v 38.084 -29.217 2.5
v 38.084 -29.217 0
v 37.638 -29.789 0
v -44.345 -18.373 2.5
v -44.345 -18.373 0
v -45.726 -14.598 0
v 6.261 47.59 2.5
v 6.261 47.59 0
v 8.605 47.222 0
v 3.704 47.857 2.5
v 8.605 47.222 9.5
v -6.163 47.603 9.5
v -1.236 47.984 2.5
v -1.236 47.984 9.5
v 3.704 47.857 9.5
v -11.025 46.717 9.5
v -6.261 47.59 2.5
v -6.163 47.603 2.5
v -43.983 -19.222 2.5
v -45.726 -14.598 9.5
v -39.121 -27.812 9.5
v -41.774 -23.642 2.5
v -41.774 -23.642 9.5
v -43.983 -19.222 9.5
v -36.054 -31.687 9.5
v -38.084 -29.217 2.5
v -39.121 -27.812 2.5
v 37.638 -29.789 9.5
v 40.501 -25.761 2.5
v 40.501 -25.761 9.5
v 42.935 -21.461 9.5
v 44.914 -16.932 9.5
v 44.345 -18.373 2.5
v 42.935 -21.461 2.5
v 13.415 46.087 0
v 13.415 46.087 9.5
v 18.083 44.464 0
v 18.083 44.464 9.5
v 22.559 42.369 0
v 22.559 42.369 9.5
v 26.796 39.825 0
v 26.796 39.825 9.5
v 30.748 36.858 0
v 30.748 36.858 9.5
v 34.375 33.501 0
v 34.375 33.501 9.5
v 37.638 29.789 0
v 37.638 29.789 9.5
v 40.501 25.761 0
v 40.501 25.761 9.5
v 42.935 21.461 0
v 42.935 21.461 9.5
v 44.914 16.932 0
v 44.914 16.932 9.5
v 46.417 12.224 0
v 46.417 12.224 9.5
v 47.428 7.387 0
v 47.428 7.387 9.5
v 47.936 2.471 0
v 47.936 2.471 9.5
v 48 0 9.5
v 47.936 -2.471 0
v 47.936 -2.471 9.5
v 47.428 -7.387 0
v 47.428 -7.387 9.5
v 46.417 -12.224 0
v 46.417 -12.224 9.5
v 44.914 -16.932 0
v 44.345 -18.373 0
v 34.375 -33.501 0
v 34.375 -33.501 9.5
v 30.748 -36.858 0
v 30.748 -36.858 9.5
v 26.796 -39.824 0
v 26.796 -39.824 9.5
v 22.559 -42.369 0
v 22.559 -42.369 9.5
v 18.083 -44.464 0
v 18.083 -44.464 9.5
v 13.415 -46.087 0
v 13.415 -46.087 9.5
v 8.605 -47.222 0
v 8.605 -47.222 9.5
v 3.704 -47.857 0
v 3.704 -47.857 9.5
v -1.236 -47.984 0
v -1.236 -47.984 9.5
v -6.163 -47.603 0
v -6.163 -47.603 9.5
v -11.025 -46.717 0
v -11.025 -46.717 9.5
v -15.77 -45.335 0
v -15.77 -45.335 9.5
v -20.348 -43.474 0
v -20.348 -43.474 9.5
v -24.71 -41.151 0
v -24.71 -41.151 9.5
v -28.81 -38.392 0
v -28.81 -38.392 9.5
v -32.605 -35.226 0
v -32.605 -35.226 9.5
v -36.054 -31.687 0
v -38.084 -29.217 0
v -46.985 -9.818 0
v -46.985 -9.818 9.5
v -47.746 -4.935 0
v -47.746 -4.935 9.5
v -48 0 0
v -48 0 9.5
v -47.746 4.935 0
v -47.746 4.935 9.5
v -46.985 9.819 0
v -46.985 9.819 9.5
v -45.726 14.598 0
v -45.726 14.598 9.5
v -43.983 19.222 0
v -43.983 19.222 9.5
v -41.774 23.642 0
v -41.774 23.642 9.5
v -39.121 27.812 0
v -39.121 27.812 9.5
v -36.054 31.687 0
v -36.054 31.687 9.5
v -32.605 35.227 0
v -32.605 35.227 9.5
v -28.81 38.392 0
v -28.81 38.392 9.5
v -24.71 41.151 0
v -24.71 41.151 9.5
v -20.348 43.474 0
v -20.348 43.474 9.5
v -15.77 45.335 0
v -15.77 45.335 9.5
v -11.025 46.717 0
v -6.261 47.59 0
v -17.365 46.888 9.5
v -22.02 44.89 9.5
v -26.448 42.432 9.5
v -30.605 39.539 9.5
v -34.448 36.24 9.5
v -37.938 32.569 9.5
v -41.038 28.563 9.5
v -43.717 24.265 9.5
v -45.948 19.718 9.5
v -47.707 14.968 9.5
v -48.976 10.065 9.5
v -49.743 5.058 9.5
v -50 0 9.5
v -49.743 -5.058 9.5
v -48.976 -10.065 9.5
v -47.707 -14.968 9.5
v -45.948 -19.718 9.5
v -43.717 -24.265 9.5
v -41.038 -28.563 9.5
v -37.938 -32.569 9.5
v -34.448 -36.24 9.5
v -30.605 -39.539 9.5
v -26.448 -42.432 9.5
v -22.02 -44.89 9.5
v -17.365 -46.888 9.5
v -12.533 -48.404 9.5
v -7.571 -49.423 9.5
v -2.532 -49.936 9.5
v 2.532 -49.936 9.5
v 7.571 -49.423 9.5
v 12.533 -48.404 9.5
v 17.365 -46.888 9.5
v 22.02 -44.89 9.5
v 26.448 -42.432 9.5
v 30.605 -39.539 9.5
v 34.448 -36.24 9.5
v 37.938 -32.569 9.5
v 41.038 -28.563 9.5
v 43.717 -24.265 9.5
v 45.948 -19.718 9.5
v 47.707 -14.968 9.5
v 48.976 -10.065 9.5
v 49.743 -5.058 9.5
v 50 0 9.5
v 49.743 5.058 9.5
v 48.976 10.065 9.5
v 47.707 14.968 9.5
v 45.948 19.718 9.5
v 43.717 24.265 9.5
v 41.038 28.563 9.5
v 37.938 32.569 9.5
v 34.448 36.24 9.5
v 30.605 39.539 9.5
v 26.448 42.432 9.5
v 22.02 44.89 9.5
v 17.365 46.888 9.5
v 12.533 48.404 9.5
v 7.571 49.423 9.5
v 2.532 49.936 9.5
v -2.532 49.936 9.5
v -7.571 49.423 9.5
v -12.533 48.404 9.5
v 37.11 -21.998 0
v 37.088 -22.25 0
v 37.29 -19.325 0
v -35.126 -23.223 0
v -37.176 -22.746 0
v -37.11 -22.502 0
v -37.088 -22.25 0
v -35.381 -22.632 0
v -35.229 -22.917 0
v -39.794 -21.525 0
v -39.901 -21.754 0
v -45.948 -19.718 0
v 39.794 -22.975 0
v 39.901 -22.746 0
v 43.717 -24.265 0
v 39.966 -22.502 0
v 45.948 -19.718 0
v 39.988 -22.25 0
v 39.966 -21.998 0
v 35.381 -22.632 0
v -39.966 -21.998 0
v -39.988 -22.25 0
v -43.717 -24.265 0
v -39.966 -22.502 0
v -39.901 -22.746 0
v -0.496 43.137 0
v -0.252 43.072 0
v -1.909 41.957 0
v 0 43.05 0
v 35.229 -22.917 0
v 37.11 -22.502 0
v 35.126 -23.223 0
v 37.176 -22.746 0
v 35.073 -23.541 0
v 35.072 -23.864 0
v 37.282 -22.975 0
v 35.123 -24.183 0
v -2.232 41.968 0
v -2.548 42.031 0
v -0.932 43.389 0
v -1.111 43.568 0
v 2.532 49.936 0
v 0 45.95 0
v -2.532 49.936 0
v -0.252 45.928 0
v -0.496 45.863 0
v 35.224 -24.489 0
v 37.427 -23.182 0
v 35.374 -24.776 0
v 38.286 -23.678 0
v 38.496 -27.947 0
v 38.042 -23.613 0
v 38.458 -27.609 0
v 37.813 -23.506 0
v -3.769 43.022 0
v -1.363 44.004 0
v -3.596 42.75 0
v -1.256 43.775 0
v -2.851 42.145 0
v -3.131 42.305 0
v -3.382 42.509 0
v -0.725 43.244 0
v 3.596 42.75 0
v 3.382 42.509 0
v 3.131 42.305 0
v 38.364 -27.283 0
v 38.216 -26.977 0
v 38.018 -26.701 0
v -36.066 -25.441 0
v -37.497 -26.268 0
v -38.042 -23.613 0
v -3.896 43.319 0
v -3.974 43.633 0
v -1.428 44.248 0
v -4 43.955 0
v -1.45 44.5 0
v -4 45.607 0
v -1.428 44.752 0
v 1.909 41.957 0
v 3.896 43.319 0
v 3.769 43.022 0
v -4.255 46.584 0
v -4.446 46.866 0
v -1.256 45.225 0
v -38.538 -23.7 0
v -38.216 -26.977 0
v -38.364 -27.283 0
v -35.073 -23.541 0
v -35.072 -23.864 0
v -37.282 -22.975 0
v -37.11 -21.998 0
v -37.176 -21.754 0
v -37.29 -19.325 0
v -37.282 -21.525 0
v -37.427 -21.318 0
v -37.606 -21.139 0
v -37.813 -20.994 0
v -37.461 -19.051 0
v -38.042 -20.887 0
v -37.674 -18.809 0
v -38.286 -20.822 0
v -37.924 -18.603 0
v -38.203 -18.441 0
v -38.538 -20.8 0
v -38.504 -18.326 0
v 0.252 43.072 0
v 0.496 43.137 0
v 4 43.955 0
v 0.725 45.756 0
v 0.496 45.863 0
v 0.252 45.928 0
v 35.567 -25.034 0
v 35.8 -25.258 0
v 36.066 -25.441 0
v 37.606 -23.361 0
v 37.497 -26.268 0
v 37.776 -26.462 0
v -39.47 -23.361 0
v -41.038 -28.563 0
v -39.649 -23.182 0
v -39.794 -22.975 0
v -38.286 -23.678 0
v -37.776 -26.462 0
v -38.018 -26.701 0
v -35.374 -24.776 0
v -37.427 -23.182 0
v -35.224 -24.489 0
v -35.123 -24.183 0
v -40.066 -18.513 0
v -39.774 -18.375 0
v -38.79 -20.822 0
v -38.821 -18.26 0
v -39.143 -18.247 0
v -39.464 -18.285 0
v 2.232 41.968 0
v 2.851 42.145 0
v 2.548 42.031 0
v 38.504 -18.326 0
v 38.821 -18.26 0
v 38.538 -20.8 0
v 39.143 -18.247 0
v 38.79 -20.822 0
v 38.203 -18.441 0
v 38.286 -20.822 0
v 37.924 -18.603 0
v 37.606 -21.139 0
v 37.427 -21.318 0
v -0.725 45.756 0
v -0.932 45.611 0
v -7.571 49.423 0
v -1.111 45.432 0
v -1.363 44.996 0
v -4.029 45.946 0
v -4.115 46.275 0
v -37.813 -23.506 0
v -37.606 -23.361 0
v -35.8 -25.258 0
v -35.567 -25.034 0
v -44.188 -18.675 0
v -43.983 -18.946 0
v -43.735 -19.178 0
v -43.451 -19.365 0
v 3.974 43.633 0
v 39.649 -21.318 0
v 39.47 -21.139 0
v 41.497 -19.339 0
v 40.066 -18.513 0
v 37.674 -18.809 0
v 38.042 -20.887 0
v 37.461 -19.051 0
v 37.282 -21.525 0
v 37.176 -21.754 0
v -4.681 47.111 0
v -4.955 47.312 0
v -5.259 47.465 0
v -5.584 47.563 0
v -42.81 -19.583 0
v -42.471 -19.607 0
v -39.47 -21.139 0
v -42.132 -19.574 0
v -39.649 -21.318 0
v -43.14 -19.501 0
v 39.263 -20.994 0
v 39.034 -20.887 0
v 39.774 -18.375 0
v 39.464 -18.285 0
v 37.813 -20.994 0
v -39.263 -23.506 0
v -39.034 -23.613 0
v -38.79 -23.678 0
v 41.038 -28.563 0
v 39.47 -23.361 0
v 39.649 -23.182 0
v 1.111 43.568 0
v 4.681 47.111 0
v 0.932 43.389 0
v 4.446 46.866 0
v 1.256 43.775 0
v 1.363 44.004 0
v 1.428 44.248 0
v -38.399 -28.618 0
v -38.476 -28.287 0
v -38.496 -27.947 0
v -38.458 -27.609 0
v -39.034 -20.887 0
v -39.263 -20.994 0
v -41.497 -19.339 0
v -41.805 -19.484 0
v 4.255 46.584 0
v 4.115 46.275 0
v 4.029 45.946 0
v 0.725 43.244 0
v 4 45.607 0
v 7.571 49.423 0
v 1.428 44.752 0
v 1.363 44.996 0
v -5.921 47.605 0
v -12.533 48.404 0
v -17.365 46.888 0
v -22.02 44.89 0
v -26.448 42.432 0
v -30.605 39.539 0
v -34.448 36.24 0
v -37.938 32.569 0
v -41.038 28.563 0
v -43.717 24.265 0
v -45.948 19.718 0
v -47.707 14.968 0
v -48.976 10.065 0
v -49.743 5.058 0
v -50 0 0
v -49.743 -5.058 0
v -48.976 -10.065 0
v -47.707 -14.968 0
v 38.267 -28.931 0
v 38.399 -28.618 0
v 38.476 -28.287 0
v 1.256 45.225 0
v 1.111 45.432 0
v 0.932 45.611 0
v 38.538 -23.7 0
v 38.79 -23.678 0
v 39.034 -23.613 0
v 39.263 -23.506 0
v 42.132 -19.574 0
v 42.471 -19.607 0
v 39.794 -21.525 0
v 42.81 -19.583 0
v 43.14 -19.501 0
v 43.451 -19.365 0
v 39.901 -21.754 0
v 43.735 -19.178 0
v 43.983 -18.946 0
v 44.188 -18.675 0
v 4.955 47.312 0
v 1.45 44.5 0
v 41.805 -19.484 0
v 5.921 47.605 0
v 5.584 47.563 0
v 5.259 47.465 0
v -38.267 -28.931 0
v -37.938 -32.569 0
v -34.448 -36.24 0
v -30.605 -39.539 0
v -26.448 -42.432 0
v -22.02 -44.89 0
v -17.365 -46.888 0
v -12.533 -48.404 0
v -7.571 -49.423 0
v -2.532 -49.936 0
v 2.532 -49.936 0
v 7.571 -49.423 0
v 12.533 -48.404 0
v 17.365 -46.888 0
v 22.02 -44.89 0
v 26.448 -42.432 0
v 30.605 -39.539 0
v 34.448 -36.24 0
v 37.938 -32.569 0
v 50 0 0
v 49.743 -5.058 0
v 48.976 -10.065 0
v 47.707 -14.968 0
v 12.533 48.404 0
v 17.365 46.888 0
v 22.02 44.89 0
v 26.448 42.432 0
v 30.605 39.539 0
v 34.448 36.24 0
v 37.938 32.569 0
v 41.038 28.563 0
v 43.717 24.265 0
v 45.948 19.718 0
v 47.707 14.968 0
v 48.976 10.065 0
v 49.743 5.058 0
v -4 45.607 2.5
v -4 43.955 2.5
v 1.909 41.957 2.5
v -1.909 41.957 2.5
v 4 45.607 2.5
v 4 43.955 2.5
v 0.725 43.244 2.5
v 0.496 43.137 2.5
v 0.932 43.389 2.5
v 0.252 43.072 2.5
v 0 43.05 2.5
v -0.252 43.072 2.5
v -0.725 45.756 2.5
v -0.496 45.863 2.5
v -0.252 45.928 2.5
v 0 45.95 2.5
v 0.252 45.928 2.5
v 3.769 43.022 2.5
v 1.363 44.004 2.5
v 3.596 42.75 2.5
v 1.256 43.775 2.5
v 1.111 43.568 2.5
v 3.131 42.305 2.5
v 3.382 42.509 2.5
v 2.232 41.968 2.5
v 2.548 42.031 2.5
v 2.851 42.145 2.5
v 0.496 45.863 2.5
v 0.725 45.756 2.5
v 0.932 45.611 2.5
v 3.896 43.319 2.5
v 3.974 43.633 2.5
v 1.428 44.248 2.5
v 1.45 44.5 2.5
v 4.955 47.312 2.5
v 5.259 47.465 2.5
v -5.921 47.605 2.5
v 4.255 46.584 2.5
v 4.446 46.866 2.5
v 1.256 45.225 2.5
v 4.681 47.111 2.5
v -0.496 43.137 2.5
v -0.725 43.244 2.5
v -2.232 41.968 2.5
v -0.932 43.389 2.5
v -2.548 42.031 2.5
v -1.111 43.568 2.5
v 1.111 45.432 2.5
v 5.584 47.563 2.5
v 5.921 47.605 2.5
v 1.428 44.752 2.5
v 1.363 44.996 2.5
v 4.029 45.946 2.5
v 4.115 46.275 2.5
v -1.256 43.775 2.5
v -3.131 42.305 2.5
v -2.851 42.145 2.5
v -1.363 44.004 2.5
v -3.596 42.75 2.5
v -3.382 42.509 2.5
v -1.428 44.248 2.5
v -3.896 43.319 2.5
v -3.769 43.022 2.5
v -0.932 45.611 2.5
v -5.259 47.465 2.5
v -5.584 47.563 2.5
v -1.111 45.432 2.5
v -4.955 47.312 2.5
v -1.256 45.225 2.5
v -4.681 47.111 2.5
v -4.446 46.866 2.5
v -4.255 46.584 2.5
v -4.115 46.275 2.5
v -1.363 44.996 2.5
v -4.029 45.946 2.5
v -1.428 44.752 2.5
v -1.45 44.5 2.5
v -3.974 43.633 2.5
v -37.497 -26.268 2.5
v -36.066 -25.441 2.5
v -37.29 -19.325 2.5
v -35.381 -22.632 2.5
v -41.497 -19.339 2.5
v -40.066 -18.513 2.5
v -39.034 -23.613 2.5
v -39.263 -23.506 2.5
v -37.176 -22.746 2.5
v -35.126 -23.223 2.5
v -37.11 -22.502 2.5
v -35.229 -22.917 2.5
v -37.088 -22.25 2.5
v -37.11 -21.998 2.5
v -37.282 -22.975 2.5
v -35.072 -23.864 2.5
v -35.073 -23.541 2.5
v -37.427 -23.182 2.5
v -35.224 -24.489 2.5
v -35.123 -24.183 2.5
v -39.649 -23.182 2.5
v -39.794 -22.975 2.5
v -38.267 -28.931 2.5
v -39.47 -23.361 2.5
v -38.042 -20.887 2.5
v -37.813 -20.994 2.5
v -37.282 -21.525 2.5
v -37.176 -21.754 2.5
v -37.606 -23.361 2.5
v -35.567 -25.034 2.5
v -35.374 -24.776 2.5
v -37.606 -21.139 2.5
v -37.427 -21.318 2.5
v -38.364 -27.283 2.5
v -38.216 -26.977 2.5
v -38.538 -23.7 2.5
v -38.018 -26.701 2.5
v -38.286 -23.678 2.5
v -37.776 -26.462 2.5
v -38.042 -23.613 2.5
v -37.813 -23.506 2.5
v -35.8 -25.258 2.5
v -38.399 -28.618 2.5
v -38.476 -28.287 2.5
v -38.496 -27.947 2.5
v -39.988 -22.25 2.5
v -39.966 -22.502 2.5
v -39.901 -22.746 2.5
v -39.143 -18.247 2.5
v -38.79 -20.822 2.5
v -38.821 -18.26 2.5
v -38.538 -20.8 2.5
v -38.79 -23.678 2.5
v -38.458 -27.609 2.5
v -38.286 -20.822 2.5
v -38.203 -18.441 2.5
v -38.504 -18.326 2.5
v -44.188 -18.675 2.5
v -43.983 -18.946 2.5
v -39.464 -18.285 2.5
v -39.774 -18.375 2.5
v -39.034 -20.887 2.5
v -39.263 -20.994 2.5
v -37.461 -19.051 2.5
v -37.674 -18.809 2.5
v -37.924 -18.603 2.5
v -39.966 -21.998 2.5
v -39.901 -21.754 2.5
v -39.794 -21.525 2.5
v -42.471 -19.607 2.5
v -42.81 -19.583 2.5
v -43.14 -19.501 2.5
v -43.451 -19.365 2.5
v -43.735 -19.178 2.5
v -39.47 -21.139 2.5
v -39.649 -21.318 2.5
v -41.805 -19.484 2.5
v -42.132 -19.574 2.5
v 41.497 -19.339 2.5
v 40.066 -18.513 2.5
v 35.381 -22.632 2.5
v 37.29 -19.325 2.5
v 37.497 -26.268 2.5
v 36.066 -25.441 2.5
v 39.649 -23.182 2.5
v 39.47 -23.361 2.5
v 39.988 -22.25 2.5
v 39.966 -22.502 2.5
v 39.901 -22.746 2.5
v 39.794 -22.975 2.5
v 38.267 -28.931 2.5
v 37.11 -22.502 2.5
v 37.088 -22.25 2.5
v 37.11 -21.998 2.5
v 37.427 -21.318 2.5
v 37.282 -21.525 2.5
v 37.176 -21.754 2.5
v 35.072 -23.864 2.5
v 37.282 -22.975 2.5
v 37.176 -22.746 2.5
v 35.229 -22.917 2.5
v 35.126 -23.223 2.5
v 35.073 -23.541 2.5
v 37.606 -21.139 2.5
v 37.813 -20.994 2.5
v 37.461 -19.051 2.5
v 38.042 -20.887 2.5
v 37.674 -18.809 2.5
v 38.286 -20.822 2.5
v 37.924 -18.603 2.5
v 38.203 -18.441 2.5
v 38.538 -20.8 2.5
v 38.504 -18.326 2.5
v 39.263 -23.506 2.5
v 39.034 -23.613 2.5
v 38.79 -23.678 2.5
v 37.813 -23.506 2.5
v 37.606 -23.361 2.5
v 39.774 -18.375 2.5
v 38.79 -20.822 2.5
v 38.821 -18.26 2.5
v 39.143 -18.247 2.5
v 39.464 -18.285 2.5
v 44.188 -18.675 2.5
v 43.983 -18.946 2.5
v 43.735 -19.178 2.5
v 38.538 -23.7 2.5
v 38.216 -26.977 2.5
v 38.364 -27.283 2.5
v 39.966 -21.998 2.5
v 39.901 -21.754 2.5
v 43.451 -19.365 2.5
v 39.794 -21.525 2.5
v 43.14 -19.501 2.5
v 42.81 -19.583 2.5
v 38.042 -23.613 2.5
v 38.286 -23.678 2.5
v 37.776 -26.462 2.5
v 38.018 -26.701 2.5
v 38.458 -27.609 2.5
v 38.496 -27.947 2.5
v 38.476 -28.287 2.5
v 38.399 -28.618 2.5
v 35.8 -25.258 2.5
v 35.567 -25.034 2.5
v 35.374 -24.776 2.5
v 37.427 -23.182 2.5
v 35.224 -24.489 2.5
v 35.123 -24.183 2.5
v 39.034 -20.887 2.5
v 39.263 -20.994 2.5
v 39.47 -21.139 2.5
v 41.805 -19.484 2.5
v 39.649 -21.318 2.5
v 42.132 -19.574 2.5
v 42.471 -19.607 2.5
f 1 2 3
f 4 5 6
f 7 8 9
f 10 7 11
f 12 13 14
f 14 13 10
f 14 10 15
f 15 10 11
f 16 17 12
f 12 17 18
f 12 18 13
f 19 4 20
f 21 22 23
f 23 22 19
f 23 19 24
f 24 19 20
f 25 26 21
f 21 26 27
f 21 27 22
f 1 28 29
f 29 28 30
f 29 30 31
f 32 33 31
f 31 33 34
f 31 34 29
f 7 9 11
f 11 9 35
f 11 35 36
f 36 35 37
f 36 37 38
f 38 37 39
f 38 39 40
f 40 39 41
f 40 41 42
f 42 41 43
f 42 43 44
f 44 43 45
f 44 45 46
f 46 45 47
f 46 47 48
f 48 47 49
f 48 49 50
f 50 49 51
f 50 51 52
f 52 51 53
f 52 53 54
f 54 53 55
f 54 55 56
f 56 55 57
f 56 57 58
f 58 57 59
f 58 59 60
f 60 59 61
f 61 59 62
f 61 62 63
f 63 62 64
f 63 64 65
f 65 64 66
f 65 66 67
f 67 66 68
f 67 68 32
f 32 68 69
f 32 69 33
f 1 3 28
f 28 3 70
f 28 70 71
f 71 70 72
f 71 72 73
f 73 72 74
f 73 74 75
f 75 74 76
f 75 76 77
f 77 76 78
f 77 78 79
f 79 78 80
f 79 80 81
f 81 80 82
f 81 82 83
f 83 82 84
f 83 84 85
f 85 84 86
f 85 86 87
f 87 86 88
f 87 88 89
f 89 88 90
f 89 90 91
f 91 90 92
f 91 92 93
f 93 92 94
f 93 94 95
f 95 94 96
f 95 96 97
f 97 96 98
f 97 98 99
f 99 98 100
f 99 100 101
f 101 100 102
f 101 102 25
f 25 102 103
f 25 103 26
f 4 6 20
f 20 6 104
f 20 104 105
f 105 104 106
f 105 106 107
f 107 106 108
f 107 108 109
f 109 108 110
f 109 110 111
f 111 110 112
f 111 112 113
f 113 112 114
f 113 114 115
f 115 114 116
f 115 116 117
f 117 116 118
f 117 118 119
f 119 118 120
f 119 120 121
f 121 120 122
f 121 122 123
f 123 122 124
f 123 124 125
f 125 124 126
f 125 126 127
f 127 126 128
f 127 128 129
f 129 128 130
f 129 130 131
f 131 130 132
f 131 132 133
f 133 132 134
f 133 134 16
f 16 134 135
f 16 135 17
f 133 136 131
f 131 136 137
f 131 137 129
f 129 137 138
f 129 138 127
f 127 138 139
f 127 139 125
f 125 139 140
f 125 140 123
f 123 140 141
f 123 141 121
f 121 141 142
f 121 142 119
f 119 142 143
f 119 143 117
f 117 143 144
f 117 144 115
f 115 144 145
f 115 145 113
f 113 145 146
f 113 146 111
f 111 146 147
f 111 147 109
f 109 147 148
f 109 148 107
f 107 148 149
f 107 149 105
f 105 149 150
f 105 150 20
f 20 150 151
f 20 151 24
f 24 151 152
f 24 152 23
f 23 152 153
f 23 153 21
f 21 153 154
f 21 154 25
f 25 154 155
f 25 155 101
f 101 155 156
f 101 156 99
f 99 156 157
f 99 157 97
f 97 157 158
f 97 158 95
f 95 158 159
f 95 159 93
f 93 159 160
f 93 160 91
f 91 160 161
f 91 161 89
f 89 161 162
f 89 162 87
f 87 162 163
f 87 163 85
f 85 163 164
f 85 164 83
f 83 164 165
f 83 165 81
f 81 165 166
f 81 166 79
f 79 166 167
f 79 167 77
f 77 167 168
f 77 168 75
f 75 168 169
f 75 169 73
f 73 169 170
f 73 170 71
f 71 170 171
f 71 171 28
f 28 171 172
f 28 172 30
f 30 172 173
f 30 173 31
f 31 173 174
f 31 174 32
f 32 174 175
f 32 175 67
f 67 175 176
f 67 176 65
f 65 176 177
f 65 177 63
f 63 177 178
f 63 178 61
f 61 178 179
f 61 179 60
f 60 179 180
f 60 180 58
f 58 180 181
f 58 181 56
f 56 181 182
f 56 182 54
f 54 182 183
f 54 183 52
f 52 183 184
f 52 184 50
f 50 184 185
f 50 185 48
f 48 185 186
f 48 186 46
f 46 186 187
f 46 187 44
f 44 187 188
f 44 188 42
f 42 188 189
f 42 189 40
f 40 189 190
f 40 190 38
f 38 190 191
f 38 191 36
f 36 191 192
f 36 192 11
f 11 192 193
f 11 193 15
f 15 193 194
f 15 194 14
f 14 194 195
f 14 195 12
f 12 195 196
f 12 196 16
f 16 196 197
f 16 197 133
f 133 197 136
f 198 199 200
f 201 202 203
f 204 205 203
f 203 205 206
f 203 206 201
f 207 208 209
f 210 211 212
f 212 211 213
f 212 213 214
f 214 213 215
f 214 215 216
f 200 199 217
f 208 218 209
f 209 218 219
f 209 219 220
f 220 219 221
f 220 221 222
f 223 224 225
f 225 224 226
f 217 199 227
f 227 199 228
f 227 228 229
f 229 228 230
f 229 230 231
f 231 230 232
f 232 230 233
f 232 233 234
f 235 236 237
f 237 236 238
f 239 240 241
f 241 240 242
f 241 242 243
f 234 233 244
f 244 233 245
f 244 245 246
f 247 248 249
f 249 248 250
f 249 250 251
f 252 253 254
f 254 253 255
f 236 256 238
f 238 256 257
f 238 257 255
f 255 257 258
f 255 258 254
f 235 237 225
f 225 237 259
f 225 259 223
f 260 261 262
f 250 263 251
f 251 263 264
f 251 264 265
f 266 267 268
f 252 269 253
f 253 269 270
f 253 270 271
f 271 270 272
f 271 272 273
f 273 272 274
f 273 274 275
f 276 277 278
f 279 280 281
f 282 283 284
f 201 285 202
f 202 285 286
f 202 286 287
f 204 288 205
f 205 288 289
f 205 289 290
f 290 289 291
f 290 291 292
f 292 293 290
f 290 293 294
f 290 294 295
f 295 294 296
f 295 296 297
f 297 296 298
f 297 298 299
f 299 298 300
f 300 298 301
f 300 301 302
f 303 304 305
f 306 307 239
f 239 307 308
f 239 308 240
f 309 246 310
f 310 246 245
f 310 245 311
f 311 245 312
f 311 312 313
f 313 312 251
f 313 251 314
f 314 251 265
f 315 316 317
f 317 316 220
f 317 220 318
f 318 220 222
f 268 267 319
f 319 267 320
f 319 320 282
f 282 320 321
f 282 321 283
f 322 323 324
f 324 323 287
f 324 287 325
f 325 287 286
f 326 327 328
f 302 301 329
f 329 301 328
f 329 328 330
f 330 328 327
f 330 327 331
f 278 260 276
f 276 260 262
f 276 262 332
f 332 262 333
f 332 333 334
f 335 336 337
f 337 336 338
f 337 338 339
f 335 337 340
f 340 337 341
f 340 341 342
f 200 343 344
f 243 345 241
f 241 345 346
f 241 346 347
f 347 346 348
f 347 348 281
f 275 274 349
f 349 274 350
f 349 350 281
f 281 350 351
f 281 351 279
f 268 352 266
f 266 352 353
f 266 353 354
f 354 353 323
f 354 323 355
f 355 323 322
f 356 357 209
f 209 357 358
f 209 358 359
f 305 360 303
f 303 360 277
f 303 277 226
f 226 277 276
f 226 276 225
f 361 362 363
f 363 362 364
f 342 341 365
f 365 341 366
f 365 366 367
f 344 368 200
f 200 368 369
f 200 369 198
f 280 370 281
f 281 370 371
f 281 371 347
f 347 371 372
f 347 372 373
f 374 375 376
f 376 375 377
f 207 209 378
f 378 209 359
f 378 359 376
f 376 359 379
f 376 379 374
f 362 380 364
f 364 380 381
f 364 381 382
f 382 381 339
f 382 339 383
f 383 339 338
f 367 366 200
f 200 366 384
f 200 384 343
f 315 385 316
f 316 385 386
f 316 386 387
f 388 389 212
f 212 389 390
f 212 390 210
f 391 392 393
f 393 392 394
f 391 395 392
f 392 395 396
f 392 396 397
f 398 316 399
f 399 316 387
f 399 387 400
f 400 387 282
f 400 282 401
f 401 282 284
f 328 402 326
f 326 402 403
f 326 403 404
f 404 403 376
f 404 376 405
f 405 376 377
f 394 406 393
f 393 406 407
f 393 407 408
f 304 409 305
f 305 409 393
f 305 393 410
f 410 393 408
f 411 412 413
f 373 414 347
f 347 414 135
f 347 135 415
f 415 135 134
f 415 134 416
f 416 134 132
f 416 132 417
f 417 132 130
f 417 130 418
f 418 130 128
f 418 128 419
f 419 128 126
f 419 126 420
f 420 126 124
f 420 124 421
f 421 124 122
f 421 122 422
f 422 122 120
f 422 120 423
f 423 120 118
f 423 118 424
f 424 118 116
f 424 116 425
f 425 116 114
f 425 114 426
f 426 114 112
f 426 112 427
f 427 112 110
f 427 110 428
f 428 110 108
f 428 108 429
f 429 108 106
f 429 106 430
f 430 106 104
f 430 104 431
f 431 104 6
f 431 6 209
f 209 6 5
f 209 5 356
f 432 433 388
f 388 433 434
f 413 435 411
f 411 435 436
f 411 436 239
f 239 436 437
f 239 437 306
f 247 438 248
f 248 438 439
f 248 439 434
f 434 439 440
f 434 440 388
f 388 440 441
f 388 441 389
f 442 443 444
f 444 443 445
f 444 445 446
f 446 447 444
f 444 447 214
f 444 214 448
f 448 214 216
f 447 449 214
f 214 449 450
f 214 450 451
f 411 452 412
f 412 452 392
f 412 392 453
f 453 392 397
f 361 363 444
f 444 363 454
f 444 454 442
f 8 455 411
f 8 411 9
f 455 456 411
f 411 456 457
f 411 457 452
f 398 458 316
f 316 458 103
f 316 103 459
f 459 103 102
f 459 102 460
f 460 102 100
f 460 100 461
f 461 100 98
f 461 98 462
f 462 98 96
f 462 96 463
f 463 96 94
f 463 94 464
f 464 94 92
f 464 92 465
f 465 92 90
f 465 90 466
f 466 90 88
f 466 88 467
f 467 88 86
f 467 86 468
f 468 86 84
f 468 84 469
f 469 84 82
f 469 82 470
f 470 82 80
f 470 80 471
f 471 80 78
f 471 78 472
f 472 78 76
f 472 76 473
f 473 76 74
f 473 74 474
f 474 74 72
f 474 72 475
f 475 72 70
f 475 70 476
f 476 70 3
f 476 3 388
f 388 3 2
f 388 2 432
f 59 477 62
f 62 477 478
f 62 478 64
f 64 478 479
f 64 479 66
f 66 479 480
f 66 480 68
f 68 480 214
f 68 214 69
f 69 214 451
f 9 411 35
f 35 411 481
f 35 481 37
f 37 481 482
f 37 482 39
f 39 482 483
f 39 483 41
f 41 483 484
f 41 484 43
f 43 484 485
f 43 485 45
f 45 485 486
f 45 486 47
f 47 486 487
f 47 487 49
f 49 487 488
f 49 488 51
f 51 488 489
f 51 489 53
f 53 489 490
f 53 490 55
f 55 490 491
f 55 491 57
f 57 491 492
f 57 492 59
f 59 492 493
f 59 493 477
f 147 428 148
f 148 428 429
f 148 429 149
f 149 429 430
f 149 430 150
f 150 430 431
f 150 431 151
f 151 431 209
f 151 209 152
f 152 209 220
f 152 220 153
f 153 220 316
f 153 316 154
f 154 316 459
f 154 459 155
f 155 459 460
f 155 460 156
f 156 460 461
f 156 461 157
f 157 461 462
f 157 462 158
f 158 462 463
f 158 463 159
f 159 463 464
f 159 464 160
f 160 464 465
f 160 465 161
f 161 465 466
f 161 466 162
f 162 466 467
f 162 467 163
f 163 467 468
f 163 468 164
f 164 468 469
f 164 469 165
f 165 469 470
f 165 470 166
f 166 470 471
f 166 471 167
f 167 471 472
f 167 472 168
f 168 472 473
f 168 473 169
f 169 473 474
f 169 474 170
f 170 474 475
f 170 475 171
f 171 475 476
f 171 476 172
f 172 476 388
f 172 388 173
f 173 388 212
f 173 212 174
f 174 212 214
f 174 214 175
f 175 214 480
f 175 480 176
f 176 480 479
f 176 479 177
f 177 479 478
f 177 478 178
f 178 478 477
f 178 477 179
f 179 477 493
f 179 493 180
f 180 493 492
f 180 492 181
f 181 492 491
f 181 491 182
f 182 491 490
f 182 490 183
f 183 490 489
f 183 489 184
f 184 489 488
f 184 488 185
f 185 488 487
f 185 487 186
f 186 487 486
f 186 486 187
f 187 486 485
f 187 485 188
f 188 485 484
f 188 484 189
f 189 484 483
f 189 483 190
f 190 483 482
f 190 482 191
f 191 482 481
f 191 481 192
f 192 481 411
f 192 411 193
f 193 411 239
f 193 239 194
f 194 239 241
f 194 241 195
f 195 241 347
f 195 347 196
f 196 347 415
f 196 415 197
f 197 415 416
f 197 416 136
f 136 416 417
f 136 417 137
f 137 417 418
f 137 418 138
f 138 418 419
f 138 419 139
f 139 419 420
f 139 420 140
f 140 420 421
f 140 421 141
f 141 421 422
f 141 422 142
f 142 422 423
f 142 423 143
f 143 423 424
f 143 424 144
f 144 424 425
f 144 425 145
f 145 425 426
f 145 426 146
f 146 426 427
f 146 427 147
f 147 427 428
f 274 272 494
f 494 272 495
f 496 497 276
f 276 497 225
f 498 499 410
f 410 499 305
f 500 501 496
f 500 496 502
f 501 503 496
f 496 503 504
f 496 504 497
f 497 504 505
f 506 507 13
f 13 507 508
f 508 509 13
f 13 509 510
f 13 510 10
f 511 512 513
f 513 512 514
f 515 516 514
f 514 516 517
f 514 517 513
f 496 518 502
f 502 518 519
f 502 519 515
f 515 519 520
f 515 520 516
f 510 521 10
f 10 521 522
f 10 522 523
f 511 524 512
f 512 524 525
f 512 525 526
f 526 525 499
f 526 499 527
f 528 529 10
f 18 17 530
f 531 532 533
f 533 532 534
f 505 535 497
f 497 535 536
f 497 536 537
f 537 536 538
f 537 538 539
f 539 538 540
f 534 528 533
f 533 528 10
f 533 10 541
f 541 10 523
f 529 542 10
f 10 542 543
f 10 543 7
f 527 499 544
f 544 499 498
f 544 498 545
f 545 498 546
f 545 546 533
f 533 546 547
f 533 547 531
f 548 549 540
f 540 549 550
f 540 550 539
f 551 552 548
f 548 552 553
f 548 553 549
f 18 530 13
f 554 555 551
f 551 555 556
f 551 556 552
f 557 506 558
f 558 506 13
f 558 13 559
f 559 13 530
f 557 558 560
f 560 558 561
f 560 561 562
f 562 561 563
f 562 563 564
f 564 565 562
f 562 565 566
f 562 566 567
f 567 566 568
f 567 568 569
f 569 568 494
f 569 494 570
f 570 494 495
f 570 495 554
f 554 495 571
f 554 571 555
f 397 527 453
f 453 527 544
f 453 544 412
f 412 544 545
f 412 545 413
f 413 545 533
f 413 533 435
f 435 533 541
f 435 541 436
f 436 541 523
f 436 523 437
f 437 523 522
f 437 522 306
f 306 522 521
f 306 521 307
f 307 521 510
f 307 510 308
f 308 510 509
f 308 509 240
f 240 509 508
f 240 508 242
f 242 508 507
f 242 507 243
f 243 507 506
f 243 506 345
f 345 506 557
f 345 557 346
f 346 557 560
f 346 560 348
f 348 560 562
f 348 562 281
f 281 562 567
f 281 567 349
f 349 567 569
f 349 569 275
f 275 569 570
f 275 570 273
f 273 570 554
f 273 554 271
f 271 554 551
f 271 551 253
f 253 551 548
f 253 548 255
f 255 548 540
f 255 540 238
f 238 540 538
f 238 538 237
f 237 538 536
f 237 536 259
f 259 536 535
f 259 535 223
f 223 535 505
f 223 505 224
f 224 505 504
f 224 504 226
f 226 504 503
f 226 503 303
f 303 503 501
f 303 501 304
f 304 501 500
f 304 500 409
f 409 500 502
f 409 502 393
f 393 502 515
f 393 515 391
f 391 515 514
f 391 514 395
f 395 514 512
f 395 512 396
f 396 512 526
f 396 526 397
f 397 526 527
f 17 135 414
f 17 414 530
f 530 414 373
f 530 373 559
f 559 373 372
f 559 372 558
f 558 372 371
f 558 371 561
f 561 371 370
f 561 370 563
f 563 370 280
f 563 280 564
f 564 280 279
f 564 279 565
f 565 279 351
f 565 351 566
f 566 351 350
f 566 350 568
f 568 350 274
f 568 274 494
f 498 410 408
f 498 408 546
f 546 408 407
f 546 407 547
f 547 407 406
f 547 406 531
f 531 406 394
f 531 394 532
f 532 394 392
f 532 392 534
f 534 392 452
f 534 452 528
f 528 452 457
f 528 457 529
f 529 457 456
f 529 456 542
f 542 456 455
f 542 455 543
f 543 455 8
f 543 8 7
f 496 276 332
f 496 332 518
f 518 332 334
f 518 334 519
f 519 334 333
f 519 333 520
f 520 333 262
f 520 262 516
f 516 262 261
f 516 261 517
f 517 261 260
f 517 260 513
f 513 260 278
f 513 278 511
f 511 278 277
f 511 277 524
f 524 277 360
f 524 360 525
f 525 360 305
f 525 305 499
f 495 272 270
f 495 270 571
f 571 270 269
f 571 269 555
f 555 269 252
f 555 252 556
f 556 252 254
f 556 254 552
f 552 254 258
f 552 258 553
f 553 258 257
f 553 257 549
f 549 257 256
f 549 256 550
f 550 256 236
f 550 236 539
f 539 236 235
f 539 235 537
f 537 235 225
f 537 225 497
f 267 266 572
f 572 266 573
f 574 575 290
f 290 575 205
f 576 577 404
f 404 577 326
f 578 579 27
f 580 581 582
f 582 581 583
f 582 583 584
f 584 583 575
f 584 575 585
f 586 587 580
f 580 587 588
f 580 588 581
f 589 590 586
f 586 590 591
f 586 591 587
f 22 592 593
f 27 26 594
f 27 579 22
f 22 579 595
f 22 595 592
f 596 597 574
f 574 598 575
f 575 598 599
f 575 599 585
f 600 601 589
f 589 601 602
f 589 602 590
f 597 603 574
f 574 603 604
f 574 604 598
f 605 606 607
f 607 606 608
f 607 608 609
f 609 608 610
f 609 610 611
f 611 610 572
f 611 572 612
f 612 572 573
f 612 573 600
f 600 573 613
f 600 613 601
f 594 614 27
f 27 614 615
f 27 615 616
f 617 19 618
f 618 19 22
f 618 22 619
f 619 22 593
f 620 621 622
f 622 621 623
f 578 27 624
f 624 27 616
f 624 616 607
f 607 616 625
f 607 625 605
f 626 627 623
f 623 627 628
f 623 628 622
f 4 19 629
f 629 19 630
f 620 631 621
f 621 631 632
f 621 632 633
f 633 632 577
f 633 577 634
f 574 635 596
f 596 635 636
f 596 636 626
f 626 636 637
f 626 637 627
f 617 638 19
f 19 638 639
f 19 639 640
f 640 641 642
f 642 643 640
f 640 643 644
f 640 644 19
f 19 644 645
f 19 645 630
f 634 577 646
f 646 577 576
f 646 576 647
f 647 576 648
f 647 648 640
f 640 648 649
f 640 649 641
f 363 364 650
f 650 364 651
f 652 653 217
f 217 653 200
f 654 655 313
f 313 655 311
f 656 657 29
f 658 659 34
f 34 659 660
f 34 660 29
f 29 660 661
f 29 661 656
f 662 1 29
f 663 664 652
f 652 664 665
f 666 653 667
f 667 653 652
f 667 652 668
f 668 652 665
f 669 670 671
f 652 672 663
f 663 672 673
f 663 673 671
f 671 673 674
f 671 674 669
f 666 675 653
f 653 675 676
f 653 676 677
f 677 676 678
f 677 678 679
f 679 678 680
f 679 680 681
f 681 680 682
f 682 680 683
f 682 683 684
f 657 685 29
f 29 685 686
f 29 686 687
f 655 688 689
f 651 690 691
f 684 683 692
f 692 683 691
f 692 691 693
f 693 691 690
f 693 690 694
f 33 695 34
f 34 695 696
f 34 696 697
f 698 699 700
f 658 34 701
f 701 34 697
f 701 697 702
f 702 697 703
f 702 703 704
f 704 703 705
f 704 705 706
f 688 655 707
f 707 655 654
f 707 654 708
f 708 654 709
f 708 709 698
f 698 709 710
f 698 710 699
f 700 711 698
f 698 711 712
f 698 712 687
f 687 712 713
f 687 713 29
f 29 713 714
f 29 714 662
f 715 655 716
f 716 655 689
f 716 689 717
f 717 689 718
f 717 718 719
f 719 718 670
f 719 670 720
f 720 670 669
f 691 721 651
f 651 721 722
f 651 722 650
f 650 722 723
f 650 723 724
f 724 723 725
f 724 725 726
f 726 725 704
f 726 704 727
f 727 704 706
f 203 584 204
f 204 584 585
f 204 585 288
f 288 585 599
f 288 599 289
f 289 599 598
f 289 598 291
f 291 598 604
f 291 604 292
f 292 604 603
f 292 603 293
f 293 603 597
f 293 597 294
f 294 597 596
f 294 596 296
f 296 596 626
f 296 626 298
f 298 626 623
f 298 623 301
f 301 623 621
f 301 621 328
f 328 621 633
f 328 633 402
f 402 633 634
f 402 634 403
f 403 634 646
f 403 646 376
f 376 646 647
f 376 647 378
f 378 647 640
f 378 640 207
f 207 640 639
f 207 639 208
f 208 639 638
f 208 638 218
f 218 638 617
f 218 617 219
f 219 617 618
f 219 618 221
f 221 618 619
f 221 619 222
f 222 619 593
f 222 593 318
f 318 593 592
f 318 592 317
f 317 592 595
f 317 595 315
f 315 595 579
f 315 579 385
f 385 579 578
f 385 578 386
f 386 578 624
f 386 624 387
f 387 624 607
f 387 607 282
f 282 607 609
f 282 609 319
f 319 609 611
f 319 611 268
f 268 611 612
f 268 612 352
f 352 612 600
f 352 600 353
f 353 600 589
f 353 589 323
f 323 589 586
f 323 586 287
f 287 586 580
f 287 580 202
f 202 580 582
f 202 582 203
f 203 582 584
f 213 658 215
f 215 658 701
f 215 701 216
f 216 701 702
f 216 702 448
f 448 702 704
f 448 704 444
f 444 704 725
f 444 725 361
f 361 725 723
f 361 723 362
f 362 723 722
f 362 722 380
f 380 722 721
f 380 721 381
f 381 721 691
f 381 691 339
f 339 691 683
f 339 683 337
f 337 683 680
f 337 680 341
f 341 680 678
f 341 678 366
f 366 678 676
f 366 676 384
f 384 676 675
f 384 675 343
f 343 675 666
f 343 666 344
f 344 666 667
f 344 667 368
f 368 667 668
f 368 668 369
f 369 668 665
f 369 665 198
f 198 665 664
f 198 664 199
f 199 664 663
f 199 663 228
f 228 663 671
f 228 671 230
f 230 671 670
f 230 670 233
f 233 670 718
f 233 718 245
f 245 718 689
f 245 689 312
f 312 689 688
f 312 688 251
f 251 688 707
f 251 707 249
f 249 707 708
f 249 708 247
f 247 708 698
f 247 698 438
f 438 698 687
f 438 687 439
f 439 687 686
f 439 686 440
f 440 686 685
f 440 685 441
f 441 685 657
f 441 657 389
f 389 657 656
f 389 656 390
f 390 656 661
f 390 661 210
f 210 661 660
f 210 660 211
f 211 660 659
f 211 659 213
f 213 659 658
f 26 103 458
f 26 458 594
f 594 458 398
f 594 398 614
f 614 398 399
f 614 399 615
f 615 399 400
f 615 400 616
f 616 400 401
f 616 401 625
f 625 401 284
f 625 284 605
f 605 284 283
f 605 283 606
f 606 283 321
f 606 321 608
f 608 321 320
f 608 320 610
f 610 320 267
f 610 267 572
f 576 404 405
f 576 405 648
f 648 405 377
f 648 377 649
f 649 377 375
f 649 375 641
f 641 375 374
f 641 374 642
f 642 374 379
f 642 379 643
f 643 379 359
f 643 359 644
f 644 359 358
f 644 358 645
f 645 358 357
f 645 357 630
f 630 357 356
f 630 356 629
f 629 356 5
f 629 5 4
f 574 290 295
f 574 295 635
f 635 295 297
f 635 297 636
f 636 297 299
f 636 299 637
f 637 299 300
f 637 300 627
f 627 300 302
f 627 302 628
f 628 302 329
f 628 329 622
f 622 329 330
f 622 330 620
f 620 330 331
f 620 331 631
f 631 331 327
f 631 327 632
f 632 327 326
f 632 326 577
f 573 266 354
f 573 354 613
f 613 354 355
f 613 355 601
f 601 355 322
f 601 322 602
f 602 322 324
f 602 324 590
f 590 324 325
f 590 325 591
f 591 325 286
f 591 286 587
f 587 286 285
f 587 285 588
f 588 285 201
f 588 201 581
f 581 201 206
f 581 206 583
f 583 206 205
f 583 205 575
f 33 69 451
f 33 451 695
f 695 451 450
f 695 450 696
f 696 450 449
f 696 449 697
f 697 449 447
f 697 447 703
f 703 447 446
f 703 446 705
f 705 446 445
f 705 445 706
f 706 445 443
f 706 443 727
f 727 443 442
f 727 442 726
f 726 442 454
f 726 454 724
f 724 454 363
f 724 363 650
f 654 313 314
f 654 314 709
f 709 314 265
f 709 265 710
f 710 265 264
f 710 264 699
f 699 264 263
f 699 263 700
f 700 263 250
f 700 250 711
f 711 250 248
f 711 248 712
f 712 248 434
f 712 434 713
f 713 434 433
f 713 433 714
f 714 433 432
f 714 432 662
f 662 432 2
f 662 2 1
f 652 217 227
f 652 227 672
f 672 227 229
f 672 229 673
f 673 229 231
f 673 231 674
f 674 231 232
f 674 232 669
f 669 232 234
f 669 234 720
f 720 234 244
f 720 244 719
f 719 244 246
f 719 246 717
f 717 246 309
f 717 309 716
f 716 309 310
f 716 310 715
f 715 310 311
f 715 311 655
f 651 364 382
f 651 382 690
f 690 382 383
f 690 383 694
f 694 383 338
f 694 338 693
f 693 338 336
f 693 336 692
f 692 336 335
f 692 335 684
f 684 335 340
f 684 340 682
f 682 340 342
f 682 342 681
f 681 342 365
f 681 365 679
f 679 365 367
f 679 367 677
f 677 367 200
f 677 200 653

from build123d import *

# Parameters (mm, degrees)
SKETCH1_R                = 50
SKETCH1_R_2              = 48
EXTRUDE1_DEPTH           = 9.5
EXTRUDE2_DEPTH           = 2.5
SKETCH3_R                = 1.45
EXTRUDE3_DEPTH           = 2.5
FILLET1_R                = 2
CIRPATTERN1_COUNT        = 3
FILLET1_OF_CIRPATTERN1_R = 2


with BuildPart() as part:
    # Sketch1 → Extrude1 (new body)
    with BuildSketch(Plane.XY):
        Circle(SKETCH1_R)
        Circle(SKETCH1_R_2, mode=Mode.SUBTRACT)
    extrude(amount=EXTRUDE1_DEPTH)

    # Sketch2 → Extrude2 (add)
    with BuildSketch(Plane.XY):
        with BuildLine():
            Line((-4, 47.833042972), (-4, 41.809089921))
            ThreePointArc((-4, 41.809089921), (0, 42), (4, 41.809089921))
            Line((4, 41.809089921), (4, 47.833042972))
            ThreePointArc((4, 47.833042972), (0, 48), (-4, 47.833042972))
        make_face()
    extrude2 = extrude(amount=EXTRUDE2_DEPTH)

    # Sketch3 → Extrude3 (cut)
    with BuildSketch(Plane.XY.offset(2.5)):
        with Locations((0, 44.5)):
            Circle(SKETCH3_R)
    extrude3 = extrude(amount=-EXTRUDE3_DEPTH, mode=Mode.SUBTRACT)

    # Fillet1
    fillet1_edges = [part.edges().sort_by_distance(p)[0] for p in [
        (4, 47.833042972, 1.25),
        (-4, 47.833042972, 1.25),
        (-4, 41.809089921, 1.25),
        (4, 41.809089921, 1.25),
    ]]
    fillet(fillet1_edges, radius=FILLET1_R)

    # CirPattern1: Extrude2, Extrude3 ×3 about axis
    cirpattern1_axis = Axis((0, 0, 0), (0, 0, 1))
    for i in range(1, CIRPATTERN1_COUNT):
        add(extrude2.rotate(cirpattern1_axis, i * 360 / CIRPATTERN1_COUNT))
        add(extrude3.rotate(cirpattern1_axis, i * 360 / CIRPATTERN1_COUNT), mode=Mode.SUBTRACT)

    # Fillet1 of CirPattern1
    fillet1_of_cirpattern1_edges = [part.edges().sort_by_distance(p)[0] for p in [
        (-43.424630354, -20.452419871, 1.25),
        (-39.424630354, -27.380623101, 1.25),
        (-34.20773398, -24.368646576, 1.25),
        (-38.20773398, -17.440443345, 1.25),
        (39.424630354, -27.380623101, 1.25),
        (43.424630354, -20.452419871, 1.25),
        (38.20773398, -17.440443345, 1.25),
        (34.20773398, -24.368646576, 1.25),
    ]]
    fillet(fillet1_of_cirpattern1_edges, radius=FILLET1_OF_CIRPATTERN1_R)


solid = part.part
